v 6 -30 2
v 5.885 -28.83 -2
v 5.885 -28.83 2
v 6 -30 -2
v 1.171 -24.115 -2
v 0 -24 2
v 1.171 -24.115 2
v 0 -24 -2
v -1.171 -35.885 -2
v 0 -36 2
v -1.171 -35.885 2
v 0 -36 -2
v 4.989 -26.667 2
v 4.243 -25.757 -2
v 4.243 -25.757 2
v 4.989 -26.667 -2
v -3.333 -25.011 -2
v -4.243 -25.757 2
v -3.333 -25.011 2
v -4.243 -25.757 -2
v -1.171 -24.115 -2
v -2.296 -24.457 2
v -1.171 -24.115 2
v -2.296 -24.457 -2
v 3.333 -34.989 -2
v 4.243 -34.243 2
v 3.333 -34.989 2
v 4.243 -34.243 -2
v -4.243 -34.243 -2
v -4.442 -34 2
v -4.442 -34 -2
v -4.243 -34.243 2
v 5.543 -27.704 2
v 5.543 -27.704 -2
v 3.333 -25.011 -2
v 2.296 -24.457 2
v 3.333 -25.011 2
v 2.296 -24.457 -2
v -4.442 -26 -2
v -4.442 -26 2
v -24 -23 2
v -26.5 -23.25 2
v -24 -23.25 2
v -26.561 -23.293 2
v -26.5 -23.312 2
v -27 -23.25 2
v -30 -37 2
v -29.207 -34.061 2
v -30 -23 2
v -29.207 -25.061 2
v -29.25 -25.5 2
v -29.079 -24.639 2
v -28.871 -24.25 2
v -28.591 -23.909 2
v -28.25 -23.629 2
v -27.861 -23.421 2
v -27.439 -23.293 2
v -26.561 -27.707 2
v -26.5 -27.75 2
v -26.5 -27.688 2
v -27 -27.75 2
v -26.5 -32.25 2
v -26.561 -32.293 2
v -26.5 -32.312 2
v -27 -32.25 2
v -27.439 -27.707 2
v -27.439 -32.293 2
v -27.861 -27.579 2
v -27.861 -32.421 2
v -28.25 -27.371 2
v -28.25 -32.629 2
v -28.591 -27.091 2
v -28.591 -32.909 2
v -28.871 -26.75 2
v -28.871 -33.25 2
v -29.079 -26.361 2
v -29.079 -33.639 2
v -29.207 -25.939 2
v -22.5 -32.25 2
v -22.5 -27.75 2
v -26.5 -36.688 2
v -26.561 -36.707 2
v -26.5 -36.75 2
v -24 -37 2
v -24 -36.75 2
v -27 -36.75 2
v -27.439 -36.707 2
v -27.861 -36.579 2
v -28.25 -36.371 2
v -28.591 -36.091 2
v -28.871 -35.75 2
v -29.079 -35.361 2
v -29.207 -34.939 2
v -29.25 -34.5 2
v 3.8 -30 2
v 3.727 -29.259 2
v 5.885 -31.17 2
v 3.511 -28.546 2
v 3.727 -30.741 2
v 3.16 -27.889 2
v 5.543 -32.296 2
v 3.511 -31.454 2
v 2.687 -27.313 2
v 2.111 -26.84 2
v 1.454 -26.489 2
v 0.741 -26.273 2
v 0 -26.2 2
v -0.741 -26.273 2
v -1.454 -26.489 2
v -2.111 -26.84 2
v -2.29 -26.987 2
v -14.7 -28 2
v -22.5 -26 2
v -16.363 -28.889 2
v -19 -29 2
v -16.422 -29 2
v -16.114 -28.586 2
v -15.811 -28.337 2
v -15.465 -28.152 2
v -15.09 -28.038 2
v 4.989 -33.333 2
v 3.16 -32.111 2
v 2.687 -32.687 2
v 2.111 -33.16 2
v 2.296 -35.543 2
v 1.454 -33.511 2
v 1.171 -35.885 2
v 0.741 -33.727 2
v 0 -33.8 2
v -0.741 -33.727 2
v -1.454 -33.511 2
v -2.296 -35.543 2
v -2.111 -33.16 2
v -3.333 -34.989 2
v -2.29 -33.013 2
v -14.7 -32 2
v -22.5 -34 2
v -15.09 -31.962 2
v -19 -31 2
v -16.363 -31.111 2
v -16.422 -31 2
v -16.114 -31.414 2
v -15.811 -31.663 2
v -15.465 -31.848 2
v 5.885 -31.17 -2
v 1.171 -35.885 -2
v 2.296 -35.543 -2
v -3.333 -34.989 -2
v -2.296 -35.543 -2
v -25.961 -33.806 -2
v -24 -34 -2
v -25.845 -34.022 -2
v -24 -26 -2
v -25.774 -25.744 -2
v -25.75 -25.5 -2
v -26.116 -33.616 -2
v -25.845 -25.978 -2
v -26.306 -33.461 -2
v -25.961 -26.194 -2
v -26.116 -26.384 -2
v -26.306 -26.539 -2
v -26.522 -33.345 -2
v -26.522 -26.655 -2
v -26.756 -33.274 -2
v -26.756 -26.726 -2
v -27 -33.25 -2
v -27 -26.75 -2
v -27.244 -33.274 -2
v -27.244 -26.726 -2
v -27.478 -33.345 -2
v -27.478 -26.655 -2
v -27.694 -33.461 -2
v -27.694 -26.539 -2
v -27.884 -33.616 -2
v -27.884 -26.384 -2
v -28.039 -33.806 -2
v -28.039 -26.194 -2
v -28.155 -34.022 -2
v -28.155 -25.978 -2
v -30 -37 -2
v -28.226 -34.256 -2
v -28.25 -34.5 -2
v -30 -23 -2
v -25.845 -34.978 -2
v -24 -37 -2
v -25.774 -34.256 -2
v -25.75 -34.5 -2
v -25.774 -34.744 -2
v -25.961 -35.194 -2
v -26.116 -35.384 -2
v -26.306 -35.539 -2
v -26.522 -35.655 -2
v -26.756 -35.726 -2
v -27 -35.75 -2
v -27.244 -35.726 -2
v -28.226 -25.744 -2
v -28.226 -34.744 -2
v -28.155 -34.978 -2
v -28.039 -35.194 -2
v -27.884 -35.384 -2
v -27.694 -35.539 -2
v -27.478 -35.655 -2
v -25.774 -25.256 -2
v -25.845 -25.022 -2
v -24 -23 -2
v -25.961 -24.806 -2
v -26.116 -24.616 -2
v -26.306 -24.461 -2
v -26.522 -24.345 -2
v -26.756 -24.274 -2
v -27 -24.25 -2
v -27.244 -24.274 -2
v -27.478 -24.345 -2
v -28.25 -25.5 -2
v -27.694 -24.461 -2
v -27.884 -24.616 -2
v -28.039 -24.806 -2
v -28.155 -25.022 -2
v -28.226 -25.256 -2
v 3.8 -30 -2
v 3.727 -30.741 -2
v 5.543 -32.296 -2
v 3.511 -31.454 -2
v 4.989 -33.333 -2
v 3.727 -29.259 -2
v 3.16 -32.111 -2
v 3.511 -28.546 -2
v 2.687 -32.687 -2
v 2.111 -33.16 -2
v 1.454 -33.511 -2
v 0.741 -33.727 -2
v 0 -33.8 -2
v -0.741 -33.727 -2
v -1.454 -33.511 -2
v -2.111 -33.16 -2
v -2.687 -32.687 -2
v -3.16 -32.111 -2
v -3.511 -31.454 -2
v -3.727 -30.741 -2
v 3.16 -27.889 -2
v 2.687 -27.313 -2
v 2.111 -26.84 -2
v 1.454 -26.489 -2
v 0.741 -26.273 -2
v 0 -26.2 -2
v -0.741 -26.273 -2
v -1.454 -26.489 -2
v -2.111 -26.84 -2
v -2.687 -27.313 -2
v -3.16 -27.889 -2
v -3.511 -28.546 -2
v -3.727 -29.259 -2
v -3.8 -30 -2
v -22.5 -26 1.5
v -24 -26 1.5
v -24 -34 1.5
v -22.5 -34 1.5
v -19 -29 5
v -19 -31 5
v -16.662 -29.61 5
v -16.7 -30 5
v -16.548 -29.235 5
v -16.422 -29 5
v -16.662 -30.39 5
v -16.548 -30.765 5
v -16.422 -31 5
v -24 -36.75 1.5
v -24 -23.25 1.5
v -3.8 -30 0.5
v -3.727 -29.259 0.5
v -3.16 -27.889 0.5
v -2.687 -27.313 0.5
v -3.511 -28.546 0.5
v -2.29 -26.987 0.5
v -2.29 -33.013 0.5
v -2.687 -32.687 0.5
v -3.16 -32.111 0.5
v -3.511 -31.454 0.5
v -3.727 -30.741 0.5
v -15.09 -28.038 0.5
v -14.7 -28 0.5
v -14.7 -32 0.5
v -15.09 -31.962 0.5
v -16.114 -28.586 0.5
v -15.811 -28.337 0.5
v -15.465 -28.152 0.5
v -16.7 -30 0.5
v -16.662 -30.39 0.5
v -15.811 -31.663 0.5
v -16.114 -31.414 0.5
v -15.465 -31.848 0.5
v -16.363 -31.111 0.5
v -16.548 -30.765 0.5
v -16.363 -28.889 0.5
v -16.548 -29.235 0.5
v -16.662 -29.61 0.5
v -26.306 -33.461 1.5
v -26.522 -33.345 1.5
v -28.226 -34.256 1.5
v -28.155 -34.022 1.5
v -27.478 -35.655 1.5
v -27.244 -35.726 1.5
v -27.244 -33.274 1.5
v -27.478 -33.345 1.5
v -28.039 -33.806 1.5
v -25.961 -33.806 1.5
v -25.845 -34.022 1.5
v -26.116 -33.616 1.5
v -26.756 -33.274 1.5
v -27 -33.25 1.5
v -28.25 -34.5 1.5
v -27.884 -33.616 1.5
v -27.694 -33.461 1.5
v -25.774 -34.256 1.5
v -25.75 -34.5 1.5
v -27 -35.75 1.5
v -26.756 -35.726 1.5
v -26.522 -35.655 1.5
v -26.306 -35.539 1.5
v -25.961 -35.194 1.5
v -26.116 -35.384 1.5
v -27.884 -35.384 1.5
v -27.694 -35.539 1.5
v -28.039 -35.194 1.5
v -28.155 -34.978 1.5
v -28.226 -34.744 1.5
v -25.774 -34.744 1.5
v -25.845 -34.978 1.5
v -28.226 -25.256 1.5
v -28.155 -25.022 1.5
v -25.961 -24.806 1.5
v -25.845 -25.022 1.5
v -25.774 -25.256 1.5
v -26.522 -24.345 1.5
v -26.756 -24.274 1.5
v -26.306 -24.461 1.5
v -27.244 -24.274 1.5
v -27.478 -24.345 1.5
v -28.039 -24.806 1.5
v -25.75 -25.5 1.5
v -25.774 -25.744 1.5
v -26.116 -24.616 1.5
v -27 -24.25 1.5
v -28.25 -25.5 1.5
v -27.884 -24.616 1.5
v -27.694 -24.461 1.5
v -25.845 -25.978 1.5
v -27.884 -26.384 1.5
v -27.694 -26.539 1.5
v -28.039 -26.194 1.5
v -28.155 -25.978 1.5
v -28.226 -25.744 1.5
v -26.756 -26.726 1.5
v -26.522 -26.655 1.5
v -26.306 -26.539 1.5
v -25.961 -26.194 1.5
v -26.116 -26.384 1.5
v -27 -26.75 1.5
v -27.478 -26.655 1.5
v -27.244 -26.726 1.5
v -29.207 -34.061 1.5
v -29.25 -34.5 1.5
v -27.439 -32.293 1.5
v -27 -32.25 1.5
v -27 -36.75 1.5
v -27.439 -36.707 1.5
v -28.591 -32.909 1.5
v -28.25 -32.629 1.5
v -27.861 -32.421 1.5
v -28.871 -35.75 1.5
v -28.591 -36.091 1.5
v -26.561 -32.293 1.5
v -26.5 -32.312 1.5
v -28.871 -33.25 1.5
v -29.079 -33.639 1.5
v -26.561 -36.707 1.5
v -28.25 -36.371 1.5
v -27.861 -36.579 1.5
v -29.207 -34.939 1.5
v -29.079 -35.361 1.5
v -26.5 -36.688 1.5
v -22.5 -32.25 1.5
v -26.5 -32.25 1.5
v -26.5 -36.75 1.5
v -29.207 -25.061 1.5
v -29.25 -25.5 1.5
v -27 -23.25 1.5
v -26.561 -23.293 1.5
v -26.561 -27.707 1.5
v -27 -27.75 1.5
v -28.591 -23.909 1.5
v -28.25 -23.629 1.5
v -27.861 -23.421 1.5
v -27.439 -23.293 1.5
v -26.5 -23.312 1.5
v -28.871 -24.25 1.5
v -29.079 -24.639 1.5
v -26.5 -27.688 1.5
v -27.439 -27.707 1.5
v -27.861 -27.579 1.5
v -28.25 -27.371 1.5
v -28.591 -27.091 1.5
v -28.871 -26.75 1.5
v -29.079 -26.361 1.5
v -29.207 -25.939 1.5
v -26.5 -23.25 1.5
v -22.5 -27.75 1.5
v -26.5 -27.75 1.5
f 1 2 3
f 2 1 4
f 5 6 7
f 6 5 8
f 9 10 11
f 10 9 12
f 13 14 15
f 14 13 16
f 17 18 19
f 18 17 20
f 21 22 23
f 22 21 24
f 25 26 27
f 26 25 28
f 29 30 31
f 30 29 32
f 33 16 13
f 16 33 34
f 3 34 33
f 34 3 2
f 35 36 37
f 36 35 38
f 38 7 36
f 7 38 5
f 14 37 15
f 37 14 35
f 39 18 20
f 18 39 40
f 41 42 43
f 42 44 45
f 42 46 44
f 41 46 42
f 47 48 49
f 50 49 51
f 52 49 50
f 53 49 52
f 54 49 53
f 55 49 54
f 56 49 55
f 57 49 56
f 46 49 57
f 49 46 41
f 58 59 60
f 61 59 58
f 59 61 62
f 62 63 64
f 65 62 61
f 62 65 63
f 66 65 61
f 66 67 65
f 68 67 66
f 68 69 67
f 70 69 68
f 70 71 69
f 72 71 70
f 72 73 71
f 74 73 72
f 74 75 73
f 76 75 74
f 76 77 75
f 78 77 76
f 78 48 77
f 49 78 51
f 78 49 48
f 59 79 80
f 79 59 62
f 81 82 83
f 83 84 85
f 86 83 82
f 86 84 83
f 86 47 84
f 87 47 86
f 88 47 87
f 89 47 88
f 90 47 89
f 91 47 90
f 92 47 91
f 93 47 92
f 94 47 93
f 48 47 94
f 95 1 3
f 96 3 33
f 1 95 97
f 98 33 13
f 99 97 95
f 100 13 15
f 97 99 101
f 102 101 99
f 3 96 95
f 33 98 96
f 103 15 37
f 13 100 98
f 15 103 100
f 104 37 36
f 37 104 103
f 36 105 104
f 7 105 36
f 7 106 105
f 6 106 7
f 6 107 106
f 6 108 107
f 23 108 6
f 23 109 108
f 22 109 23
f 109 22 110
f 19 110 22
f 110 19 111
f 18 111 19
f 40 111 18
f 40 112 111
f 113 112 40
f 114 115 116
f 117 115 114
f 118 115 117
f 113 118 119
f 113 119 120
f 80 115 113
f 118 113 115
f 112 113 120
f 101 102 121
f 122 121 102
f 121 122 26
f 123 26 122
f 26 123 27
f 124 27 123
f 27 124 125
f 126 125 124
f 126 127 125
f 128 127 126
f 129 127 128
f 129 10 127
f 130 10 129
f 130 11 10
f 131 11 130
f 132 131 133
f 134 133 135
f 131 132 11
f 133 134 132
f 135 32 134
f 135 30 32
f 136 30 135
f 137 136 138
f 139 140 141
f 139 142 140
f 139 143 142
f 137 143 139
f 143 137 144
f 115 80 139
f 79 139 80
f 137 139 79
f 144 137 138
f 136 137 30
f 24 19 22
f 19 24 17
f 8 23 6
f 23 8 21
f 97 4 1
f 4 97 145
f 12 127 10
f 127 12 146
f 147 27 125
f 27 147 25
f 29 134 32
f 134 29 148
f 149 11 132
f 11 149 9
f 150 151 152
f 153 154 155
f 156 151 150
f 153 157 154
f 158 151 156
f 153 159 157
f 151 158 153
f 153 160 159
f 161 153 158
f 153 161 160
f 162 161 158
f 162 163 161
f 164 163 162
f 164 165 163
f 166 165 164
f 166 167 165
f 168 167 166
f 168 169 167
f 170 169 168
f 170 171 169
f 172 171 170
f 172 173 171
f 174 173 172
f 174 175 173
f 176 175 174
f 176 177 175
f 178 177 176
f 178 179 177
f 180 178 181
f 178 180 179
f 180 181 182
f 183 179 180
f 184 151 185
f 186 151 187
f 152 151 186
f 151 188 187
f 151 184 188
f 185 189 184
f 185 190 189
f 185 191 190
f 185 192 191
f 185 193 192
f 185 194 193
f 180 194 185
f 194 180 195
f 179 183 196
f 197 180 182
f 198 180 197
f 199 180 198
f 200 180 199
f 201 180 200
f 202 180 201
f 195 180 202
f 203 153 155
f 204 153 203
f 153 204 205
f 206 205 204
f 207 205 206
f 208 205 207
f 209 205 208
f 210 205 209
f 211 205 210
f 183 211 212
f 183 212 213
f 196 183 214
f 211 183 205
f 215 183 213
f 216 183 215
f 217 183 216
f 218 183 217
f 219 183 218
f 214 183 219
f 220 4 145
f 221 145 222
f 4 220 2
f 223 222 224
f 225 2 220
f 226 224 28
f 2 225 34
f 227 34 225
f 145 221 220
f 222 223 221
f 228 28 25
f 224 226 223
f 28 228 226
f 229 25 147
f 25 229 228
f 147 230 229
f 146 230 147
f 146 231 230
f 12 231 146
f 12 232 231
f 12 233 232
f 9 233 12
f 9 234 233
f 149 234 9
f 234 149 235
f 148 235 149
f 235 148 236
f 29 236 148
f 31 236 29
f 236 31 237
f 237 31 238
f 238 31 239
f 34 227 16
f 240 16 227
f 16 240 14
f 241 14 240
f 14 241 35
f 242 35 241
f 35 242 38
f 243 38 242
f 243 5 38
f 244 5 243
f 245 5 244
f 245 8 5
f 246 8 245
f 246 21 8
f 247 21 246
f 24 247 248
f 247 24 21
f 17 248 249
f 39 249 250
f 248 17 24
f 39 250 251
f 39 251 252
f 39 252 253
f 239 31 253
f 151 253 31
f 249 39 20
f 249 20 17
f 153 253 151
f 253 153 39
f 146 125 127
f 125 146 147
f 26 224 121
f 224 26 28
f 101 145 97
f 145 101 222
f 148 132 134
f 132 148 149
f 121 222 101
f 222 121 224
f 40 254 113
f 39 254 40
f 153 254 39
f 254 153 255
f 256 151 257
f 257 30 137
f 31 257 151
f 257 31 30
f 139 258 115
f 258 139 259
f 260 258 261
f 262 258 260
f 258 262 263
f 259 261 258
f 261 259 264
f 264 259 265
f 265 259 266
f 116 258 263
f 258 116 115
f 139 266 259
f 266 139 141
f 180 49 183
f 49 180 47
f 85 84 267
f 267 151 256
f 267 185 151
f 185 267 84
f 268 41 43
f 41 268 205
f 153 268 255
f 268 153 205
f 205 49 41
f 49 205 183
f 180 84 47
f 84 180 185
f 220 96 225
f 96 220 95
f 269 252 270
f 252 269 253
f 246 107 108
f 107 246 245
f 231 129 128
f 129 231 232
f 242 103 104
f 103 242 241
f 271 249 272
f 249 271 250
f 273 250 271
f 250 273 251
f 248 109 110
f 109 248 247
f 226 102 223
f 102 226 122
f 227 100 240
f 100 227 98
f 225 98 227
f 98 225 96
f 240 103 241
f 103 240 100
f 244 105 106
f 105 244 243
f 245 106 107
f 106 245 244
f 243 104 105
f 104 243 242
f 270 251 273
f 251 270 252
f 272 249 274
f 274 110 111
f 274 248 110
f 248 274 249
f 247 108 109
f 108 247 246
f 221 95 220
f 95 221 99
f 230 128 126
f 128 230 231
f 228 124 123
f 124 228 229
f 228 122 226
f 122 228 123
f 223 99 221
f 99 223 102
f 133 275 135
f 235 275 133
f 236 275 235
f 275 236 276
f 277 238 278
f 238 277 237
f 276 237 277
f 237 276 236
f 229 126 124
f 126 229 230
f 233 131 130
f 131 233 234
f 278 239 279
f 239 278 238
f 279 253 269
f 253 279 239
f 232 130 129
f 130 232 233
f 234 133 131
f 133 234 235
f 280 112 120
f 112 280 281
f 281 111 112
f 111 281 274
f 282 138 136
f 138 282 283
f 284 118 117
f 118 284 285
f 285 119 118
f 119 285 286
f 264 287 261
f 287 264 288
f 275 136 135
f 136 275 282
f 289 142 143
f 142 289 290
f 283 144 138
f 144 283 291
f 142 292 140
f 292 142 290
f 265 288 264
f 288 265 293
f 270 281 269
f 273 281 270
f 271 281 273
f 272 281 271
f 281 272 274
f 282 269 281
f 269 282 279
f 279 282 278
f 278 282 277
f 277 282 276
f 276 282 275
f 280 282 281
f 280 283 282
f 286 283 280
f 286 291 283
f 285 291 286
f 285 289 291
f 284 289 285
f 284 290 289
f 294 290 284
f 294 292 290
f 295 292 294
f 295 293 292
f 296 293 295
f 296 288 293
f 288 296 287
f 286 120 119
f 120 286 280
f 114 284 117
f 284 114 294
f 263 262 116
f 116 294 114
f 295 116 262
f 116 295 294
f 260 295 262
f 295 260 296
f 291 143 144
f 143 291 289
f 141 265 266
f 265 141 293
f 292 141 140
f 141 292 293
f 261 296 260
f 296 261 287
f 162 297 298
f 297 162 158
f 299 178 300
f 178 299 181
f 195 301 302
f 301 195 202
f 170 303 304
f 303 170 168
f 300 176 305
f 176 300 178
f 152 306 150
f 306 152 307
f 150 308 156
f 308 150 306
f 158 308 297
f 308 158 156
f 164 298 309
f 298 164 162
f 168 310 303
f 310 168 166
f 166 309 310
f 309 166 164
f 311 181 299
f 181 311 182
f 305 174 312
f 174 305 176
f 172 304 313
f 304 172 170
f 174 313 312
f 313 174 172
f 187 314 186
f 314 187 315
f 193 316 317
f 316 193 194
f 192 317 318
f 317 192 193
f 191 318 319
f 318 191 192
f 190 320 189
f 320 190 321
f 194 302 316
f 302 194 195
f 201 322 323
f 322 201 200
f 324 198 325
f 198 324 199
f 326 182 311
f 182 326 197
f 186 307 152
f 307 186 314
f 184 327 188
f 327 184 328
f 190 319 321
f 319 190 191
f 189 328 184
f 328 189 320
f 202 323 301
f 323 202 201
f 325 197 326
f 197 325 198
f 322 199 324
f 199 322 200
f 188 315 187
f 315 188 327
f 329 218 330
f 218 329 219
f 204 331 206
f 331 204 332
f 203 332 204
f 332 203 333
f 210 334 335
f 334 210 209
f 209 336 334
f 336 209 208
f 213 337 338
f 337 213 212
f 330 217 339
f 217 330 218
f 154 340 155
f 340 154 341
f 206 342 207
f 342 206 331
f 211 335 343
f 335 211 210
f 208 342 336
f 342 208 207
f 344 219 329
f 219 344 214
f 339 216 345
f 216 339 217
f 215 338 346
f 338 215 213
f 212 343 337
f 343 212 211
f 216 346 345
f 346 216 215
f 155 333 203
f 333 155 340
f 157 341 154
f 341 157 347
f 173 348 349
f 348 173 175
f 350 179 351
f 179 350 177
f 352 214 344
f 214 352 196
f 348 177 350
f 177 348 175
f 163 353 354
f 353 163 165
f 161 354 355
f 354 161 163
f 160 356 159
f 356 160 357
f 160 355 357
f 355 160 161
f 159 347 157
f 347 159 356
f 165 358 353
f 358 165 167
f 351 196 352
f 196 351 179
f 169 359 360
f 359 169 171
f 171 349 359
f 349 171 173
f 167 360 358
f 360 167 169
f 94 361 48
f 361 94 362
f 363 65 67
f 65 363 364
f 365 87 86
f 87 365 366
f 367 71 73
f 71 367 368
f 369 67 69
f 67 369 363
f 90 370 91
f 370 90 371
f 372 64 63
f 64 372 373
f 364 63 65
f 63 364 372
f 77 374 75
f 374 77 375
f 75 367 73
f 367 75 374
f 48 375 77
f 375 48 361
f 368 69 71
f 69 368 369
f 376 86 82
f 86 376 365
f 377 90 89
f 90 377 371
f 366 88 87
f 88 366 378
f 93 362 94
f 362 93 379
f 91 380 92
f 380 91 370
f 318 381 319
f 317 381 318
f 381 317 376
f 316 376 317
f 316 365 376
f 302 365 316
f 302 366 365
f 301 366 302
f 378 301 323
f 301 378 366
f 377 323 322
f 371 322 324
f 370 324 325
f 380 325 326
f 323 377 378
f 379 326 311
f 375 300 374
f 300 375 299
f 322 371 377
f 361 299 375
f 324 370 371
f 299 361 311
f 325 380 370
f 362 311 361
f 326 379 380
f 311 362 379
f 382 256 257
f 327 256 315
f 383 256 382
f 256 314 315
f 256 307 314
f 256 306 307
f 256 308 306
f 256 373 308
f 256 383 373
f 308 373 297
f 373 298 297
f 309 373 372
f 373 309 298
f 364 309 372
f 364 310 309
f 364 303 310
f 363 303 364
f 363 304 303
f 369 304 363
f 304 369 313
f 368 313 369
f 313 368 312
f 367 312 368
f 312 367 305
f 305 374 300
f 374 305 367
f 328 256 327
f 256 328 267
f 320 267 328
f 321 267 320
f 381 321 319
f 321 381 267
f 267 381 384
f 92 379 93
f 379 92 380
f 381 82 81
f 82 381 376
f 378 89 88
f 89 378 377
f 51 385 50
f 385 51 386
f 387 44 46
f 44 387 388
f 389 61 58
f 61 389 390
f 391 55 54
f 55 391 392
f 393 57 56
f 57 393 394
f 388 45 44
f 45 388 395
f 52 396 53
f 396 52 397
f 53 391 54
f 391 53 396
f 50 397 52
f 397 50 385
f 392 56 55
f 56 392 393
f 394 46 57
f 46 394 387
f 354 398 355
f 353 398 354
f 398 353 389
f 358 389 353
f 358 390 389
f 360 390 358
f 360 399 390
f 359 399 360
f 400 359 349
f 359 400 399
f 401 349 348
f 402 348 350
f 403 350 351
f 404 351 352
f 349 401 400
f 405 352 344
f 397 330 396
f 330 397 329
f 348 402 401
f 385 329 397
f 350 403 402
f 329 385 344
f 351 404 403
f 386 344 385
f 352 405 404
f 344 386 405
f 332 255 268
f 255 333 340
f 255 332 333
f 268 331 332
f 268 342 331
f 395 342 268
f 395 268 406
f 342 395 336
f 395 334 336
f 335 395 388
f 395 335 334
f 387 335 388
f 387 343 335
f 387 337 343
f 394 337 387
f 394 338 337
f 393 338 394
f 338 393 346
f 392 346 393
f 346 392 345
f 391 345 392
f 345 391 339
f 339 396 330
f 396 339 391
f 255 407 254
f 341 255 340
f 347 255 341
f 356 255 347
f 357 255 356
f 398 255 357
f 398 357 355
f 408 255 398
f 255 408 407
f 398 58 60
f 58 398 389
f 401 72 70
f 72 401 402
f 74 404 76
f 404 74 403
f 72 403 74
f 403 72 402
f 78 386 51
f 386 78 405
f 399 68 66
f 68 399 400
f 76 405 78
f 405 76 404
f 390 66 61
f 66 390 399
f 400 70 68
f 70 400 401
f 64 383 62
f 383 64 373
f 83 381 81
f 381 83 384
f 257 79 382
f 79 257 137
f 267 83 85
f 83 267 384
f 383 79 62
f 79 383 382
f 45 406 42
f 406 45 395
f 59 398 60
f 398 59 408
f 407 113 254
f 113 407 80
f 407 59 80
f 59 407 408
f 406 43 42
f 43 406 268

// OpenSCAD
//-- limit switch holder / servo arm extender for Auto Bed Leveling
//-- by AndrewBCN - Barcelona, Spain - November 2014
//-- GPLV3
//-- (armv3 below)

//-- remix of Thingiverse #167430 (armv1 below)
//-- by zennmaster

//-- remix of Thingiverse #209384 (armv2 below)
//-- by Stephen Castello

// Some measurements and features

// armv1 has a (fixed) length of 37mm,
// width is 10mm, thickness is 4mm,
// uses 2 x M2.5 screws and nuts to hold a small limit switch.
// Uses standard 9G microservo.

// armv2 is for a much larger limit switch and also
// apparently for a larger servo, although everything seems
// to be configurable. Default thickness is 5mm.
// Uses M3 screws and nuts to hold the limit switch.

// armv3 has a parametric length (default is 37mm), uses
// a T-profile with 4mm base thickness to avoid flexing,
// holds the small limit switch with either 2 x small M2.5
// screws and nuts or a nylon tie.
// Uses standard 9G microservo.
// The slot for the servo arm is properly shaped.


// arm body length, add approximately 8mm for total length
// i.e. with an arm length of 37mm, the distance between
// the servo center and the tip of the limit switch is 45mm

// Configure according to your extruder dimensions
arm_length=27; // [30:70]

module armv3() {
    difference() {
      // body
      union() {
      cylinder(r=6, h=4,center=true,$fn=32);
      translate([-arm_length/2,0,0]) cube([arm_length,8,4],center=true);
      // reinforcement
      translate([-arm_length/2,0,3]) cube([arm_length-16,2,4],center=true);
      // limit switch base
      translate([-arm_length,0,0]) cube([6,14,4],center=true);
      }
      
    // hole for servo spindle
    cylinder(r=3.8,h=10,center=true,$fn=32); 

    // slot for servo arm
    hull() {
      translate([0,0,5.5]) cylinder(r=3.2,h=10,center=true,$fn=32);
      translate([-14.7,0,5.5]) cylinder(r=2,h=10,center=true,$fn=32);
    }
    
    // holes for nylon tie or M2.5 screws holding limit switch
    translate([-arm_length,-4.5,0]) cylinder(r=1.25,h=10,center=true,$fn=32);
    translate([-arm_length,4.5,0]) cylinder(r=1.25,h=10,center=true,$fn=32);
    
    // some limit switches will fit better with this
    translate([-arm_length,-4.5,4]) cylinder(r=2.25,h=5,center=true,$fn=32);
    translate([-arm_length,4.5,4]) cylinder(r=2.25,h=5,center=true,$fn=32);    
    translate([-arm_length+2.5,-4.5,4]) cube([4,4.5,5],center=true);
    translate([-arm_length+2.5,4.5,4]) cube([4,4.5,5],center=true);    
    }
}


module armv1() {
  difference(){
    union(){
      difference(){
	roundedBox([10,37,4],4,true); //main body
	translate([0,0,3])
	  roundedBox([4.8,28,5],2.4,true);  //slot for servo arm
	translate([0,-12.5,-5])
	cylinder(r=3.75,h=10, $fn=30); //  Hole for servo spindle
      }

      translate([0,16.5,0])
      roundedBox([20,5,4],1.75,true); // Microswtich mount body
    }
    translate([0,16.5,-1])
    roundedBox([16,2.8,10],1.4,true);  // slot for mounting screws
  }
}

module armv2() {
  //////////////////////////////////////////////////////////////////////////////////////////////////
  // Created on 12/13/2013 by Stephen Castello
  // Last update: 2/22/2014
  // changed thickness to 5mm (4mm flexed alot)
  //////////////////////////////////////////////////////////////////////////////////////////////////
  // variables
  //////////////////////////////////////////////////////////////////////////////////////////////////
  Z_Rod_dia=10;				// diameter of Z rod
  Screw_dia=3.2;				// clamp screw diameter
  Screw_Thread_dia=2.5;		// screw hole diameter to make a 3mm threaded hole
  Switch_ht=15;				// height of holder
  Switch_thk = 5;				// thickness of holder
  Switch_hole_sep=22;		// distance between holes for switch (19 for mechanical endstop v1.2)
  Switch_hole_offset = 10;		// switch hole offest (mech endstop v1.2 doesn't have one)
  Nut_wrench_size = 5.5;		// wrench size of nut
  Nut_depth = 2.3;			// thickness of nut
  Nylok_depth = 4;			// thickness of nylok nut
  Lever_wd = 12;				// width of lever
  Lever_ht = 33;				// lever length
  Servo_dia = 8.2;			// outside diameter of servo lever
  //////////////////////////////////////////////////////////////////////////////////////////////////
  // make the parts
  //////////////////////////////////////////////////////////////////////////////////////////////////

  rotate([0,-90,0]) {
	  switch_side(0); // switch off to right == 1
	  lever();
  }

  //////////////////////////////////////////////////////////////////////////////////////////////////
  // modules for each part
  //////////////////////////////////////////////////////////////////////////////////////////////////

  module switch_side(Right) { // riser for switch
	  if(Right) {
		  difference() {
			  difference() {
				  difference() {
					  cube([Switch_thk,29,Switch_ht],false);
					  // screw holes for switch
					  rotate(a=[0,90,0]) {		
						  translate([-(Switch_ht-2.5), 4, 0]) {
							  cylinder(h = 11, r = Screw_dia/2, center = false, $fn=100);
						  }
					  }
					  rotate(a=[0,90,0]) {
						  translate(v = [-(Switch_ht-2.5)+Switch_hole_offset, 4+Switch_hole_sep, 0]) {
						  cylinder(h = 11, r = Screw_dia/2, center = false, $fn=100);
						  }
					  }
				  }
			  }
		  }
		  translate([0,12,11]) rotate([45,0,0]) cube([Switch_thk,5,5],false); // gusset
	  } else {
		  difference() {
			  difference() {
				  translate([0,-17,0]) {
					  difference() {
						  cube([Switch_thk,29,Switch_ht],false);
						  // screw holes for switch
						  rotate(a=[0,90,0]) {		
							  translate([-(Switch_ht-2.5)+Switch_hole_offset, 4, 0]) {
								  cylinder(h = 11, r = Screw_dia/2, center = false, $fn=100);
							  }
						  }
						  rotate(a=[0,90,0]) {
							  translate(v = [-(Switch_ht-2.5), 4+Switch_hole_sep, 0]) {
							  cylinder(h = 11, r = Screw_dia/2, center = false, $fn=100);
							  }
						  }
					  }
				  } // translate
			  }
		  }
		  translate([0,0,11]) rotate([45,0,0]) cube([Switch_thk,5,5],false); // gusset
	  }
  }

  //////////////////////////////////////////////////////////////////////////////////////////////////////////////

  module lever() {  // servo lever
	  difference() {
		  hull() {
			  translate([0,0,15]) cube([Switch_thk,Lever_wd,Lever_ht-5],false); // lever with a rounded end
			  translate([0,6,Lever_ht + 10.5]) rotate([0,90,0]) cylinder(h=Switch_thk,r=Lever_wd/2,$fn=50);
		  }
		  translate([2.6,3,15]) cube([Switch_thk/2,Lever_wd/2,Lever_ht-5],false); // groove
		  translate([-5,6,Lever_ht + 10]) rotate([0,90,0]) cylinder(h=20,r=Servo_dia/2,$fn=50); // servo arm hole
		  //notch_lever();  // added countersinks instead
	  }
  }

  //////////////////////////////////////////////////////////////////////////////////////////////////////////////

  module notch_lever()
  {
	  difference() { // space for servo mounting screw
		  hull() {   // must be adjusted if size is changed *************************************************************
			  translate([-1,15,35]) rotate([90,0,0]) cylinder(h=20,r=2,$fn=50);
			  translate([-1,23,50]) rotate([135,0,0]) cylinder(h=20,r=2,$fn=50);
			  translate([-1,3,36]) rotate([45,0,0]) cylinder(h=20,r=2,$fn=50);
		  }
		  translate([-1,6,47]) {
			  rotate([0,90,0]) minkowski() {
				  cube([Lever_wd-4,Switch_thk-4,Lever_ht], true);
				  cylinder(r=6,h=1,$fn=100);
			  }
		  }
	  }
  }

  //////////////////////end of Z stop servo mount.scad /////////////////////////////////////////////////
}

/*include <boxes.scad>; // required only by armv1
armv1();
translate([30,30,0]) armv2(); */
// print the part
translate([0,-30,0]) armv3();
//import("/home/andrea/git/RAM/Eroina/stl/piattaforma_3dprint_v2_zprobe.stl");
